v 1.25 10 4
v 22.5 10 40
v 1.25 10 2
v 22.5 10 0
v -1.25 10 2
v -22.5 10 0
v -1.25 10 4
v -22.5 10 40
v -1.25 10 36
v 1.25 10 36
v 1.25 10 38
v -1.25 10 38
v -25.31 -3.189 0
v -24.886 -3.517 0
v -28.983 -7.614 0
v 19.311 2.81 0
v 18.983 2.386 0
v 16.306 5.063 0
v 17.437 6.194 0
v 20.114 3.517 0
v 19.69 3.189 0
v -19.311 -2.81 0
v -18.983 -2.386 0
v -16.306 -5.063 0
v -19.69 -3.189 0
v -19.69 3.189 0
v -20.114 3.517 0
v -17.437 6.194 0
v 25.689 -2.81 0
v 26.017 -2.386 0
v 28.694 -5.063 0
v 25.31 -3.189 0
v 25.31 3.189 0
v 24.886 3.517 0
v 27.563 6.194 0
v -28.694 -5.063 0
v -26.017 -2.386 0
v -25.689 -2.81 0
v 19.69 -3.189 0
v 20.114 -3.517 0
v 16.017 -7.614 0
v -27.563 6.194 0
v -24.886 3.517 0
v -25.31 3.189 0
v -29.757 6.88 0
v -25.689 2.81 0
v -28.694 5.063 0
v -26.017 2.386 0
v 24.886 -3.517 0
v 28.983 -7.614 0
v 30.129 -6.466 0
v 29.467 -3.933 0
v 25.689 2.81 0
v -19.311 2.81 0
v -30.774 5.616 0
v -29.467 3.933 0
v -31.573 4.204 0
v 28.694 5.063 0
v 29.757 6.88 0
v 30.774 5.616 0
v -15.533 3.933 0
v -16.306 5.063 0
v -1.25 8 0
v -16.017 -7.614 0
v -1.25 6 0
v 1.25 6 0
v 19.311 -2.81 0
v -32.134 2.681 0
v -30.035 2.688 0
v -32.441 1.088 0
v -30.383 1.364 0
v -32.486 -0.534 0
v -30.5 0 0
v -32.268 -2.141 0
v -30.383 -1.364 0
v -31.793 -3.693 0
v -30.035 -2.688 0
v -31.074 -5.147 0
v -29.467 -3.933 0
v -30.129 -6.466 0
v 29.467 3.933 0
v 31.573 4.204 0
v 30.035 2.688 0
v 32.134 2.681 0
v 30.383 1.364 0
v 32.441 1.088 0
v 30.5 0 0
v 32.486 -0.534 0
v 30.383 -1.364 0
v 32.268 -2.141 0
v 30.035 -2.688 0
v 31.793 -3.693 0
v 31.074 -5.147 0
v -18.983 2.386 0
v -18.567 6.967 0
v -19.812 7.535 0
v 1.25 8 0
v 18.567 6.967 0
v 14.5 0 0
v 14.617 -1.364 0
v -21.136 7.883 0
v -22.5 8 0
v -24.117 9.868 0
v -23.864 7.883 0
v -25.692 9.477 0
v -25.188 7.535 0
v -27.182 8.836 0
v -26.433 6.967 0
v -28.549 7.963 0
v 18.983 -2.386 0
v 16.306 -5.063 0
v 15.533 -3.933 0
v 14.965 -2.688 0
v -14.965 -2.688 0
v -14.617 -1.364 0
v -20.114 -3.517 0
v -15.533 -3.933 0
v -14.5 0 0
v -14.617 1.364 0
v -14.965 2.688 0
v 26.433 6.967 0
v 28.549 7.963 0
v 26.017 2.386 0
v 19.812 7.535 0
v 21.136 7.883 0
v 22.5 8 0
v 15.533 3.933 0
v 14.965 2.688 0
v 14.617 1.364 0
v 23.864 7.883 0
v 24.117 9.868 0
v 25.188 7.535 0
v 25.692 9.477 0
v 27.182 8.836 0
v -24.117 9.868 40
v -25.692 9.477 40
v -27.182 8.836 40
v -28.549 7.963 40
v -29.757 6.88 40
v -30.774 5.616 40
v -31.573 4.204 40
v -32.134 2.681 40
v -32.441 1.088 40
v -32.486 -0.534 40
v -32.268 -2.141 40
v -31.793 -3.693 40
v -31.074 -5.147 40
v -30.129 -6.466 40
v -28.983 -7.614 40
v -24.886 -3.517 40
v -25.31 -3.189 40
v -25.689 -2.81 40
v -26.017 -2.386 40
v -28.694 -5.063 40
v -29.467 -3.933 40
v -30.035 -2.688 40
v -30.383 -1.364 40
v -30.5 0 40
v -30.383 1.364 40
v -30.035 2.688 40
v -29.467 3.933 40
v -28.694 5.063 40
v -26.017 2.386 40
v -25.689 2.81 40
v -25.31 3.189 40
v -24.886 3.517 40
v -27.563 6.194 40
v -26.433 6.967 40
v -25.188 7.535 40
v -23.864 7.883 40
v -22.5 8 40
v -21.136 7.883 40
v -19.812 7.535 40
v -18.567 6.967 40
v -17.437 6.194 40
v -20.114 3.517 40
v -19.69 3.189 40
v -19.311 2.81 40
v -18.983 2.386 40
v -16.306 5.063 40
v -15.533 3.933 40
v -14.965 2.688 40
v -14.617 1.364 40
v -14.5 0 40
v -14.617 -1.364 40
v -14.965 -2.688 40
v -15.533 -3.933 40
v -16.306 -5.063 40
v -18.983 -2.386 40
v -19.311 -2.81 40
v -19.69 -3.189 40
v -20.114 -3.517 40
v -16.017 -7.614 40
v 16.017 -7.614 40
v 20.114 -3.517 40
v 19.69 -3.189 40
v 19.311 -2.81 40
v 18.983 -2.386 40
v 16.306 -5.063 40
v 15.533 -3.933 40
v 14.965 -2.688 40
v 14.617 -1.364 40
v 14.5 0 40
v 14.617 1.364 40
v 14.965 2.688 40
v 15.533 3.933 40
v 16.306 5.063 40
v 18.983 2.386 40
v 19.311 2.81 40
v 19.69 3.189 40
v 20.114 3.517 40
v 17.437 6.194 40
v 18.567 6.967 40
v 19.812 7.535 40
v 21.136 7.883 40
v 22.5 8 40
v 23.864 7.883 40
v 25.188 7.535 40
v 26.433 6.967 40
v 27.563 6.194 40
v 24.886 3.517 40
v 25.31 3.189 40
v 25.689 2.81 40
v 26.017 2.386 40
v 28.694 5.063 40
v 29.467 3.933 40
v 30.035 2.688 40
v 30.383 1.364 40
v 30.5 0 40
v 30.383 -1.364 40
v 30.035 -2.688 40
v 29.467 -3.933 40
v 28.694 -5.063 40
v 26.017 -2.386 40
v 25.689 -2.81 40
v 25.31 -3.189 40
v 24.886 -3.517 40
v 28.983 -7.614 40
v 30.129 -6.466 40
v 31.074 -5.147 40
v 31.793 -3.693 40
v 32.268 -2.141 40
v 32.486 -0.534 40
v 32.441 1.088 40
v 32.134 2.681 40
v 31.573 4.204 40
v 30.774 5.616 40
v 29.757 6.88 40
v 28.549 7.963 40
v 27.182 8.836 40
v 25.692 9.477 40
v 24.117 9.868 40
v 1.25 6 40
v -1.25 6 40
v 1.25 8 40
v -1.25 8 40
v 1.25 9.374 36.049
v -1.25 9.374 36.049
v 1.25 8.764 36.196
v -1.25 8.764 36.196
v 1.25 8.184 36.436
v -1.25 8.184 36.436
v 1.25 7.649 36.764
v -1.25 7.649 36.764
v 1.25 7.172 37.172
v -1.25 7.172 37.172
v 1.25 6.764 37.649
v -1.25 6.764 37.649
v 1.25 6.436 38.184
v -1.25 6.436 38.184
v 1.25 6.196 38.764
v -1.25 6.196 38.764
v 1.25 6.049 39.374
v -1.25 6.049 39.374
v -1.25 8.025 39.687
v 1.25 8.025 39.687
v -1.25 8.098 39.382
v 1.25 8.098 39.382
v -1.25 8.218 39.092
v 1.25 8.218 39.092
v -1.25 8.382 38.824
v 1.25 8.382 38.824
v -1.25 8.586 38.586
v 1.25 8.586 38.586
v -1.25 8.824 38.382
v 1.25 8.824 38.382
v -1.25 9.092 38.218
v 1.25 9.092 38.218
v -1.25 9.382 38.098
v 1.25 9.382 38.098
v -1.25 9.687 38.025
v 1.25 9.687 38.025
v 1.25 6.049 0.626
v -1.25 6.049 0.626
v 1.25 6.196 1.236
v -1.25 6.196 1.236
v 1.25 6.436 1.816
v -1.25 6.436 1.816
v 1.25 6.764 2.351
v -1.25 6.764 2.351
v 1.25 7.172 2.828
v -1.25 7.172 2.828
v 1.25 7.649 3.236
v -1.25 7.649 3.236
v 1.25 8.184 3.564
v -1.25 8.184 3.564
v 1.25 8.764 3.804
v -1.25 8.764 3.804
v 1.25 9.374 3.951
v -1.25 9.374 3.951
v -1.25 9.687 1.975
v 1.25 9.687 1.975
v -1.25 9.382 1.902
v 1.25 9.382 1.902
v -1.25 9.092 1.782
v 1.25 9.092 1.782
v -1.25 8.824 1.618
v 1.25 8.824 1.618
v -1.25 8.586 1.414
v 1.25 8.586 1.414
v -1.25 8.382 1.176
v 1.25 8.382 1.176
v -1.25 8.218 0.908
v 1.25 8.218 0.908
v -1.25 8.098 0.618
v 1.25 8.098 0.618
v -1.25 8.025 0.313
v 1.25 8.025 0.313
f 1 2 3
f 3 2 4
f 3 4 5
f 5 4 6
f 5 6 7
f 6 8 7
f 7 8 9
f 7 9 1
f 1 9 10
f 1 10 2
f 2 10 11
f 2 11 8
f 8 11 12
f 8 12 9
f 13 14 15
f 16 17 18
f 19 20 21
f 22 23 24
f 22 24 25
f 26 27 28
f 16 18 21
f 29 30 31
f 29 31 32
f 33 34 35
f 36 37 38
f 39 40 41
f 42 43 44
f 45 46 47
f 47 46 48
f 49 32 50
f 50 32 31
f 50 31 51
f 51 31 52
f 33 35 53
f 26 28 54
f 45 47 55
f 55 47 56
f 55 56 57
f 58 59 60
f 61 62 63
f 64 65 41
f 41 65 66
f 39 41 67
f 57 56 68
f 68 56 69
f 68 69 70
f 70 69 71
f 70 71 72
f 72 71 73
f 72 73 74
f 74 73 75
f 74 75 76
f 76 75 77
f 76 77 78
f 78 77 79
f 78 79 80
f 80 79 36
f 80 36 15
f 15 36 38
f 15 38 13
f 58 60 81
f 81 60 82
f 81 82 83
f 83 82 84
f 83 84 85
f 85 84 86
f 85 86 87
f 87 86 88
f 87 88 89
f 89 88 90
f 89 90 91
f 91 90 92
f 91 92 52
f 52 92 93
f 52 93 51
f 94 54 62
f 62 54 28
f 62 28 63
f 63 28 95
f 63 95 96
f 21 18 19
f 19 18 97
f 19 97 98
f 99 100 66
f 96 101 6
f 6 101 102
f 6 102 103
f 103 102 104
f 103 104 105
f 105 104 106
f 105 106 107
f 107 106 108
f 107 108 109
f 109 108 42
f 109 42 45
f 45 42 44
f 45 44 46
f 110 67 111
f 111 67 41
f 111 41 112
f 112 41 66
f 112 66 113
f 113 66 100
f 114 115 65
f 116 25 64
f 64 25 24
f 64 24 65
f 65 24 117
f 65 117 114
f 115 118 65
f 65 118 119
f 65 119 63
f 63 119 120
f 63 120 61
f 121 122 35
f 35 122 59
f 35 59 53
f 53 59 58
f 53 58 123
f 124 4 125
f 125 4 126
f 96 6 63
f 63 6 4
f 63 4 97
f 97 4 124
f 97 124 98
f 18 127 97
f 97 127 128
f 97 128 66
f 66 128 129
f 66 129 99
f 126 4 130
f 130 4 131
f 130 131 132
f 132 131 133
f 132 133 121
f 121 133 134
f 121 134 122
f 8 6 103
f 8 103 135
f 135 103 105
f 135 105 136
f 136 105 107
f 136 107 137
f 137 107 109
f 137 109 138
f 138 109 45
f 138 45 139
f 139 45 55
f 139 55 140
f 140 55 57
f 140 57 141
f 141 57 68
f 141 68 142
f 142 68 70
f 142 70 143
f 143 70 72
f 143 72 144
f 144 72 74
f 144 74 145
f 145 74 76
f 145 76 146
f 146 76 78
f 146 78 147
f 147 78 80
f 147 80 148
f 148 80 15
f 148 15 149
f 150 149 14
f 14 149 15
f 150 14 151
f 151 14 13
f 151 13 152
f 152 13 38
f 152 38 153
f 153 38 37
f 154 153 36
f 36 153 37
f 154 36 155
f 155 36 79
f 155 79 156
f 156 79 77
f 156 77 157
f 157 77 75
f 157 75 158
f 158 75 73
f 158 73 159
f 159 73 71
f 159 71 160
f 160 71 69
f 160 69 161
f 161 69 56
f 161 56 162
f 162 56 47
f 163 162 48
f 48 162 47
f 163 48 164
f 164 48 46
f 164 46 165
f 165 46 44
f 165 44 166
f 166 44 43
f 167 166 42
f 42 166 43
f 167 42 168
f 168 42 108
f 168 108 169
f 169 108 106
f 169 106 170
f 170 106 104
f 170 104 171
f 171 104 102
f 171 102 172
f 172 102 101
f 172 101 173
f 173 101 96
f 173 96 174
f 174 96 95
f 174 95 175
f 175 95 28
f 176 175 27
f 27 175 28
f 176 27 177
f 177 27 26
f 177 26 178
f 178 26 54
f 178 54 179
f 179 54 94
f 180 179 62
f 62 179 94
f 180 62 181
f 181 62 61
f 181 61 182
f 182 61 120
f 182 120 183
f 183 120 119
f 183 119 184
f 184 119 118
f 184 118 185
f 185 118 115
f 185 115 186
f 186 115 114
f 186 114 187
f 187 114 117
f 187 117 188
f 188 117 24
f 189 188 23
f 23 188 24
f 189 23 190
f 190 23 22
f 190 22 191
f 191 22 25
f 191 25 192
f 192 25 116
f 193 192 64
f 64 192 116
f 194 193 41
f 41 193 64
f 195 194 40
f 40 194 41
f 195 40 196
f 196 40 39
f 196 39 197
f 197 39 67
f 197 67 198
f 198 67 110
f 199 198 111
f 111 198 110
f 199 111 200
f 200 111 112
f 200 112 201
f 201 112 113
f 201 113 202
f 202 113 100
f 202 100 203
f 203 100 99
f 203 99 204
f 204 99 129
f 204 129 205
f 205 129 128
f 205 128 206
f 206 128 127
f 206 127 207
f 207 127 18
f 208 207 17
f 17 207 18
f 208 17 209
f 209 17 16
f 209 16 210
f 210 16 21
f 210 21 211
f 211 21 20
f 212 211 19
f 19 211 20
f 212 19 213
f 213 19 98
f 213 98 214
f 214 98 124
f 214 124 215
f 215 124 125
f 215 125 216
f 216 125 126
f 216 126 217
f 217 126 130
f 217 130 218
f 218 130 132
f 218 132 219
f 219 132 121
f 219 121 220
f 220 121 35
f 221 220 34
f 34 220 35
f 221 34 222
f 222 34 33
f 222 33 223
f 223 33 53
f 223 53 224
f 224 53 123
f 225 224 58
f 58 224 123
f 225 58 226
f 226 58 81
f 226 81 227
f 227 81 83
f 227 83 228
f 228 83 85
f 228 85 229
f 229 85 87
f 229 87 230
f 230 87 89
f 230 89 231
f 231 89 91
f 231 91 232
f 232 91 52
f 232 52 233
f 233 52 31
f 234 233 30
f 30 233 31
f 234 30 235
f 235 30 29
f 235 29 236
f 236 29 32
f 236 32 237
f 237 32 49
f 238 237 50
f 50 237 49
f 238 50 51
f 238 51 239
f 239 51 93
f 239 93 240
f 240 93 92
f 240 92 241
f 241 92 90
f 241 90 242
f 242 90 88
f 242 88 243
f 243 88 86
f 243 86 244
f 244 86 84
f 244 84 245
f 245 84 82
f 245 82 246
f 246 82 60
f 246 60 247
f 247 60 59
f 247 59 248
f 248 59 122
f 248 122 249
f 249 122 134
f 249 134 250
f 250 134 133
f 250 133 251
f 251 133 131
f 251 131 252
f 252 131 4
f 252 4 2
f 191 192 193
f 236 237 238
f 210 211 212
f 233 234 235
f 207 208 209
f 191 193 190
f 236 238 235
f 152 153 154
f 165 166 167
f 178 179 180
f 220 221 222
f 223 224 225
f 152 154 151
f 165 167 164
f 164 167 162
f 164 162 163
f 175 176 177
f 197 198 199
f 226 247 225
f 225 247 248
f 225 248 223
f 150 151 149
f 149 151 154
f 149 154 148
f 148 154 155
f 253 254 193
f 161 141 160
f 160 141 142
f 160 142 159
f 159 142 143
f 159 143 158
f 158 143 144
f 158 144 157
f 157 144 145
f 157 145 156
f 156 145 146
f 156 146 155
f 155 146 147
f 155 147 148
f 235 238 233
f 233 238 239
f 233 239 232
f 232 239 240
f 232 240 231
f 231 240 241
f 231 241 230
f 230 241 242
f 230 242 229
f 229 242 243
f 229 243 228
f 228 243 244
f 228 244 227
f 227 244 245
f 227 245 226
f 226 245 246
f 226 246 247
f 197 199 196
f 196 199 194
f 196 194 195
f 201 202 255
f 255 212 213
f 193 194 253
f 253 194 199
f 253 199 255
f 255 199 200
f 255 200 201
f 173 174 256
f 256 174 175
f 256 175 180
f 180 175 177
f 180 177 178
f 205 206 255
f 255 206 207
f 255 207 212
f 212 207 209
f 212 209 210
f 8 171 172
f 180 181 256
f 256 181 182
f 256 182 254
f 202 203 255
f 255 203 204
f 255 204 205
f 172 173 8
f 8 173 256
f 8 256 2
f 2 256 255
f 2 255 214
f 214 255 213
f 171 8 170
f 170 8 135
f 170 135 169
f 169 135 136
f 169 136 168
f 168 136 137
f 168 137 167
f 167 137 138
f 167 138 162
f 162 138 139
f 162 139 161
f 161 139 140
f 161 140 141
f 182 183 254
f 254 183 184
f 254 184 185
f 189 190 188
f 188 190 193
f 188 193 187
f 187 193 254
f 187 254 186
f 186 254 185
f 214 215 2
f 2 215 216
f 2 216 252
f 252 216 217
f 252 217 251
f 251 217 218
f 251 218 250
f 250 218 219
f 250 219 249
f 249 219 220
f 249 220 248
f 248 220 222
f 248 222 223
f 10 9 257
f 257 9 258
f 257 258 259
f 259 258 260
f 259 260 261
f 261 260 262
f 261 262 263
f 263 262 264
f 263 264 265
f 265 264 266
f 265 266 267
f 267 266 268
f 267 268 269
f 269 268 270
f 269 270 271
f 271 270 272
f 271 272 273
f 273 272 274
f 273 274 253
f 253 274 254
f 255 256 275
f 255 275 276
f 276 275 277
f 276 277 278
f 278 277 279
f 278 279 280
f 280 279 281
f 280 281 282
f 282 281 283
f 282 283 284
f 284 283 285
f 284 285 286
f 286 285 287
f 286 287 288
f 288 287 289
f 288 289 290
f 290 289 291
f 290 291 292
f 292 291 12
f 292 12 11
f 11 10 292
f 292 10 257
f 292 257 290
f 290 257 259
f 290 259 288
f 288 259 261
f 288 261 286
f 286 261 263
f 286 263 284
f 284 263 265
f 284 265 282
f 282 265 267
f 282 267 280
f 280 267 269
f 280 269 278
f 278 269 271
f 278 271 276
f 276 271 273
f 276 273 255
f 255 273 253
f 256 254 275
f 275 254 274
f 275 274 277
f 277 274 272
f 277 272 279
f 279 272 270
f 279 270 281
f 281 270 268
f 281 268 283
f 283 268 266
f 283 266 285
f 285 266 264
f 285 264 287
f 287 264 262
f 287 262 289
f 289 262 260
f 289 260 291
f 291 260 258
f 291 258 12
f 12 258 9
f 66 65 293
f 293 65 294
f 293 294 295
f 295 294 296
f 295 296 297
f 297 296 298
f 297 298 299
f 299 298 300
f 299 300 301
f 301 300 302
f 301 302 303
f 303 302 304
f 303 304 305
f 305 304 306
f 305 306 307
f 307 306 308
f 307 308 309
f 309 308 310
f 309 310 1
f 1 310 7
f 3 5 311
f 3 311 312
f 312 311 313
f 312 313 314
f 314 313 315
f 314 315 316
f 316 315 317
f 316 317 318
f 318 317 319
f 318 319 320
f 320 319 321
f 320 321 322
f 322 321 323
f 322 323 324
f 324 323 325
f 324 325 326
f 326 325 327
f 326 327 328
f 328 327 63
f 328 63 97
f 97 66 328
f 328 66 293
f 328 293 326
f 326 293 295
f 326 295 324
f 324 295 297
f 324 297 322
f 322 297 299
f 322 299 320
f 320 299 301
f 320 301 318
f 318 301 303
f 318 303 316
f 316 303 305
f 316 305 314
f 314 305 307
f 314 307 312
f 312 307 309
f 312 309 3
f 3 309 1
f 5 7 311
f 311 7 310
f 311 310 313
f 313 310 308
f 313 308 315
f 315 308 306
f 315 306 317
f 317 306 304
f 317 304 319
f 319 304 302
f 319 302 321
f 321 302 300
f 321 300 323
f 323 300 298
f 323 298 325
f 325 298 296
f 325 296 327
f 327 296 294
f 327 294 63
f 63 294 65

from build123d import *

# Parameters (mm, degrees)
BOSS_EXTRUDE1_DEPTH     = 40
CUT_EXTRUDE1_DEPTH      = 1.25
CUT_EXTRUDE1_DEPTH_BACK = 1.25


with BuildPart() as part:
    # Sketch1 → Boss-Extrude1 (new body)
    with BuildSketch(Plane.XY):
        with BuildLine():
            Line((-18.982831897, 2.385797253), (-16.305815663, 5.062813487))
            ThreePointArc((-16.305815663, 5.062813487), (-14.5, 0), (-16.305815663, -5.062813487))
            Line((-16.305815663, -5.062813487), (-18.982831897, -2.385797253))
            ThreePointArc((-18.982831897, -2.385797253), (-19.49479618, -3.00520382), (-20.114202747, -3.517168103))
            Line((-20.114202747, -3.517168103), (-16.01728135, -7.6140895))
            Line((-16.01728135, -7.6140895), (16.01728135, -7.6140895))
            Line((16.01728135, -7.6140895), (20.114202747, -3.517168103))
            ThreePointArc((20.114202747, -3.517168103), (19.49479618, -3.00520382), (18.982831897, -2.385797253))
            Line((18.982831897, -2.385797253), (16.305815663, -5.062813487))
            ThreePointArc((16.305815663, -5.062813487), (14.5, 0), (16.305815663, 5.062813487))
            Line((16.305815663, 5.062813487), (18.982831897, 2.385797253))
            ThreePointArc((18.982831897, 2.385797253), (19.49479618, 3.00520382), (20.114202747, 3.517168103))
            Line((20.114202747, 3.517168103), (17.437186513, 6.194184337))
            ThreePointArc((17.437186513, 6.194184337), (22.5, 8), (27.562813487, 6.194184337))
            Line((27.562813487, 6.194184337), (24.885797253, 3.517168103))
            ThreePointArc((24.885797253, 3.517168103), (25.50520382, 3.00520382), (26.017168103, 2.385797253))
            Line((26.017168103, 2.385797253), (28.694184337, 5.062813487))
            ThreePointArc((28.694184337, 5.062813487), (30.5, 0), (28.694184337, -5.062813487))
            Line((28.694184337, -5.062813487), (26.017168103, -2.385797253))
            ThreePointArc((26.017168103, -2.385797253), (25.50520382, -3.00520382), (24.885797253, -3.517168103))
            Line((24.885797253, -3.517168103), (28.98271865, -7.6140895))
            ThreePointArc((28.98271865, -7.6140895), (31.884585633, 3.453918427), (22.5, 10))
            Line((22.5, 10), (-22.5, 10))
            ThreePointArc((-22.5, 10), (-31.884585633, 3.453918427), (-28.98271865, -7.6140895))
            Line((-28.98271865, -7.6140895), (-24.885797253, -3.517168103))
            ThreePointArc((-24.885797253, -3.517168103), (-25.50520382, -3.00520382), (-26.017168103, -2.385797253))
            Line((-26.017168103, -2.385797253), (-28.694184337, -5.062813487))
            ThreePointArc((-28.694184337, -5.062813487), (-30.5, 0), (-28.694184337, 5.062813487))
            Line((-28.694184337, 5.062813487), (-26.017168103, 2.385797253))
            ThreePointArc((-26.017168103, 2.385797253), (-25.50520382, 3.00520382), (-24.885797253, 3.517168103))
            Line((-24.885797253, 3.517168103), (-27.562813487, 6.194184337))
            ThreePointArc((-27.562813487, 6.194184337), (-22.5, 8), (-17.437186513, 6.194184337))
            Line((-17.437186513, 6.194184337), (-20.114202747, 3.517168103))
            ThreePointArc((-20.114202747, 3.517168103), (-19.49479618, 3.00520382), (-18.982831897, 2.385797253))
        make_face()
    extrude(amount=BOSS_EXTRUDE1_DEPTH)

    # Sketch2 → Cut-Extrude1 (cut, two sides: drawn at the far end of the back side and taken through both)
    with BuildSketch(Plane(origin=(0, 0, 0), x_dir=(0, 0, -1), z_dir=(1, 0, 0)).offset(-CUT_EXTRUDE1_DEPTH_BACK)):
        with BuildLine():
            Line((-40, 6), (-40, 8))
            ThreePointArc((-40, 8), (-38.585786438, 8.585786438), (-38, 10))
            Line((-38, 10), (-36, 10))
            ThreePointArc((-36, 10), (-37.171572875, 7.171572875), (-40, 6))
        make_face()
        with BuildLine():
            Line((-2, 10), (-4, 10))
            ThreePointArc((-4, 10), (-2.828427125, 7.171572875), (0, 6))
            Line((0, 6), (0, 8))
            ThreePointArc((0, 8), (-1.414213562, 8.585786438), (-2, 10))
        make_face()
    extrude(amount=CUT_EXTRUDE1_DEPTH + CUT_EXTRUDE1_DEPTH_BACK, mode=Mode.SUBTRACT)


solid = part.part
